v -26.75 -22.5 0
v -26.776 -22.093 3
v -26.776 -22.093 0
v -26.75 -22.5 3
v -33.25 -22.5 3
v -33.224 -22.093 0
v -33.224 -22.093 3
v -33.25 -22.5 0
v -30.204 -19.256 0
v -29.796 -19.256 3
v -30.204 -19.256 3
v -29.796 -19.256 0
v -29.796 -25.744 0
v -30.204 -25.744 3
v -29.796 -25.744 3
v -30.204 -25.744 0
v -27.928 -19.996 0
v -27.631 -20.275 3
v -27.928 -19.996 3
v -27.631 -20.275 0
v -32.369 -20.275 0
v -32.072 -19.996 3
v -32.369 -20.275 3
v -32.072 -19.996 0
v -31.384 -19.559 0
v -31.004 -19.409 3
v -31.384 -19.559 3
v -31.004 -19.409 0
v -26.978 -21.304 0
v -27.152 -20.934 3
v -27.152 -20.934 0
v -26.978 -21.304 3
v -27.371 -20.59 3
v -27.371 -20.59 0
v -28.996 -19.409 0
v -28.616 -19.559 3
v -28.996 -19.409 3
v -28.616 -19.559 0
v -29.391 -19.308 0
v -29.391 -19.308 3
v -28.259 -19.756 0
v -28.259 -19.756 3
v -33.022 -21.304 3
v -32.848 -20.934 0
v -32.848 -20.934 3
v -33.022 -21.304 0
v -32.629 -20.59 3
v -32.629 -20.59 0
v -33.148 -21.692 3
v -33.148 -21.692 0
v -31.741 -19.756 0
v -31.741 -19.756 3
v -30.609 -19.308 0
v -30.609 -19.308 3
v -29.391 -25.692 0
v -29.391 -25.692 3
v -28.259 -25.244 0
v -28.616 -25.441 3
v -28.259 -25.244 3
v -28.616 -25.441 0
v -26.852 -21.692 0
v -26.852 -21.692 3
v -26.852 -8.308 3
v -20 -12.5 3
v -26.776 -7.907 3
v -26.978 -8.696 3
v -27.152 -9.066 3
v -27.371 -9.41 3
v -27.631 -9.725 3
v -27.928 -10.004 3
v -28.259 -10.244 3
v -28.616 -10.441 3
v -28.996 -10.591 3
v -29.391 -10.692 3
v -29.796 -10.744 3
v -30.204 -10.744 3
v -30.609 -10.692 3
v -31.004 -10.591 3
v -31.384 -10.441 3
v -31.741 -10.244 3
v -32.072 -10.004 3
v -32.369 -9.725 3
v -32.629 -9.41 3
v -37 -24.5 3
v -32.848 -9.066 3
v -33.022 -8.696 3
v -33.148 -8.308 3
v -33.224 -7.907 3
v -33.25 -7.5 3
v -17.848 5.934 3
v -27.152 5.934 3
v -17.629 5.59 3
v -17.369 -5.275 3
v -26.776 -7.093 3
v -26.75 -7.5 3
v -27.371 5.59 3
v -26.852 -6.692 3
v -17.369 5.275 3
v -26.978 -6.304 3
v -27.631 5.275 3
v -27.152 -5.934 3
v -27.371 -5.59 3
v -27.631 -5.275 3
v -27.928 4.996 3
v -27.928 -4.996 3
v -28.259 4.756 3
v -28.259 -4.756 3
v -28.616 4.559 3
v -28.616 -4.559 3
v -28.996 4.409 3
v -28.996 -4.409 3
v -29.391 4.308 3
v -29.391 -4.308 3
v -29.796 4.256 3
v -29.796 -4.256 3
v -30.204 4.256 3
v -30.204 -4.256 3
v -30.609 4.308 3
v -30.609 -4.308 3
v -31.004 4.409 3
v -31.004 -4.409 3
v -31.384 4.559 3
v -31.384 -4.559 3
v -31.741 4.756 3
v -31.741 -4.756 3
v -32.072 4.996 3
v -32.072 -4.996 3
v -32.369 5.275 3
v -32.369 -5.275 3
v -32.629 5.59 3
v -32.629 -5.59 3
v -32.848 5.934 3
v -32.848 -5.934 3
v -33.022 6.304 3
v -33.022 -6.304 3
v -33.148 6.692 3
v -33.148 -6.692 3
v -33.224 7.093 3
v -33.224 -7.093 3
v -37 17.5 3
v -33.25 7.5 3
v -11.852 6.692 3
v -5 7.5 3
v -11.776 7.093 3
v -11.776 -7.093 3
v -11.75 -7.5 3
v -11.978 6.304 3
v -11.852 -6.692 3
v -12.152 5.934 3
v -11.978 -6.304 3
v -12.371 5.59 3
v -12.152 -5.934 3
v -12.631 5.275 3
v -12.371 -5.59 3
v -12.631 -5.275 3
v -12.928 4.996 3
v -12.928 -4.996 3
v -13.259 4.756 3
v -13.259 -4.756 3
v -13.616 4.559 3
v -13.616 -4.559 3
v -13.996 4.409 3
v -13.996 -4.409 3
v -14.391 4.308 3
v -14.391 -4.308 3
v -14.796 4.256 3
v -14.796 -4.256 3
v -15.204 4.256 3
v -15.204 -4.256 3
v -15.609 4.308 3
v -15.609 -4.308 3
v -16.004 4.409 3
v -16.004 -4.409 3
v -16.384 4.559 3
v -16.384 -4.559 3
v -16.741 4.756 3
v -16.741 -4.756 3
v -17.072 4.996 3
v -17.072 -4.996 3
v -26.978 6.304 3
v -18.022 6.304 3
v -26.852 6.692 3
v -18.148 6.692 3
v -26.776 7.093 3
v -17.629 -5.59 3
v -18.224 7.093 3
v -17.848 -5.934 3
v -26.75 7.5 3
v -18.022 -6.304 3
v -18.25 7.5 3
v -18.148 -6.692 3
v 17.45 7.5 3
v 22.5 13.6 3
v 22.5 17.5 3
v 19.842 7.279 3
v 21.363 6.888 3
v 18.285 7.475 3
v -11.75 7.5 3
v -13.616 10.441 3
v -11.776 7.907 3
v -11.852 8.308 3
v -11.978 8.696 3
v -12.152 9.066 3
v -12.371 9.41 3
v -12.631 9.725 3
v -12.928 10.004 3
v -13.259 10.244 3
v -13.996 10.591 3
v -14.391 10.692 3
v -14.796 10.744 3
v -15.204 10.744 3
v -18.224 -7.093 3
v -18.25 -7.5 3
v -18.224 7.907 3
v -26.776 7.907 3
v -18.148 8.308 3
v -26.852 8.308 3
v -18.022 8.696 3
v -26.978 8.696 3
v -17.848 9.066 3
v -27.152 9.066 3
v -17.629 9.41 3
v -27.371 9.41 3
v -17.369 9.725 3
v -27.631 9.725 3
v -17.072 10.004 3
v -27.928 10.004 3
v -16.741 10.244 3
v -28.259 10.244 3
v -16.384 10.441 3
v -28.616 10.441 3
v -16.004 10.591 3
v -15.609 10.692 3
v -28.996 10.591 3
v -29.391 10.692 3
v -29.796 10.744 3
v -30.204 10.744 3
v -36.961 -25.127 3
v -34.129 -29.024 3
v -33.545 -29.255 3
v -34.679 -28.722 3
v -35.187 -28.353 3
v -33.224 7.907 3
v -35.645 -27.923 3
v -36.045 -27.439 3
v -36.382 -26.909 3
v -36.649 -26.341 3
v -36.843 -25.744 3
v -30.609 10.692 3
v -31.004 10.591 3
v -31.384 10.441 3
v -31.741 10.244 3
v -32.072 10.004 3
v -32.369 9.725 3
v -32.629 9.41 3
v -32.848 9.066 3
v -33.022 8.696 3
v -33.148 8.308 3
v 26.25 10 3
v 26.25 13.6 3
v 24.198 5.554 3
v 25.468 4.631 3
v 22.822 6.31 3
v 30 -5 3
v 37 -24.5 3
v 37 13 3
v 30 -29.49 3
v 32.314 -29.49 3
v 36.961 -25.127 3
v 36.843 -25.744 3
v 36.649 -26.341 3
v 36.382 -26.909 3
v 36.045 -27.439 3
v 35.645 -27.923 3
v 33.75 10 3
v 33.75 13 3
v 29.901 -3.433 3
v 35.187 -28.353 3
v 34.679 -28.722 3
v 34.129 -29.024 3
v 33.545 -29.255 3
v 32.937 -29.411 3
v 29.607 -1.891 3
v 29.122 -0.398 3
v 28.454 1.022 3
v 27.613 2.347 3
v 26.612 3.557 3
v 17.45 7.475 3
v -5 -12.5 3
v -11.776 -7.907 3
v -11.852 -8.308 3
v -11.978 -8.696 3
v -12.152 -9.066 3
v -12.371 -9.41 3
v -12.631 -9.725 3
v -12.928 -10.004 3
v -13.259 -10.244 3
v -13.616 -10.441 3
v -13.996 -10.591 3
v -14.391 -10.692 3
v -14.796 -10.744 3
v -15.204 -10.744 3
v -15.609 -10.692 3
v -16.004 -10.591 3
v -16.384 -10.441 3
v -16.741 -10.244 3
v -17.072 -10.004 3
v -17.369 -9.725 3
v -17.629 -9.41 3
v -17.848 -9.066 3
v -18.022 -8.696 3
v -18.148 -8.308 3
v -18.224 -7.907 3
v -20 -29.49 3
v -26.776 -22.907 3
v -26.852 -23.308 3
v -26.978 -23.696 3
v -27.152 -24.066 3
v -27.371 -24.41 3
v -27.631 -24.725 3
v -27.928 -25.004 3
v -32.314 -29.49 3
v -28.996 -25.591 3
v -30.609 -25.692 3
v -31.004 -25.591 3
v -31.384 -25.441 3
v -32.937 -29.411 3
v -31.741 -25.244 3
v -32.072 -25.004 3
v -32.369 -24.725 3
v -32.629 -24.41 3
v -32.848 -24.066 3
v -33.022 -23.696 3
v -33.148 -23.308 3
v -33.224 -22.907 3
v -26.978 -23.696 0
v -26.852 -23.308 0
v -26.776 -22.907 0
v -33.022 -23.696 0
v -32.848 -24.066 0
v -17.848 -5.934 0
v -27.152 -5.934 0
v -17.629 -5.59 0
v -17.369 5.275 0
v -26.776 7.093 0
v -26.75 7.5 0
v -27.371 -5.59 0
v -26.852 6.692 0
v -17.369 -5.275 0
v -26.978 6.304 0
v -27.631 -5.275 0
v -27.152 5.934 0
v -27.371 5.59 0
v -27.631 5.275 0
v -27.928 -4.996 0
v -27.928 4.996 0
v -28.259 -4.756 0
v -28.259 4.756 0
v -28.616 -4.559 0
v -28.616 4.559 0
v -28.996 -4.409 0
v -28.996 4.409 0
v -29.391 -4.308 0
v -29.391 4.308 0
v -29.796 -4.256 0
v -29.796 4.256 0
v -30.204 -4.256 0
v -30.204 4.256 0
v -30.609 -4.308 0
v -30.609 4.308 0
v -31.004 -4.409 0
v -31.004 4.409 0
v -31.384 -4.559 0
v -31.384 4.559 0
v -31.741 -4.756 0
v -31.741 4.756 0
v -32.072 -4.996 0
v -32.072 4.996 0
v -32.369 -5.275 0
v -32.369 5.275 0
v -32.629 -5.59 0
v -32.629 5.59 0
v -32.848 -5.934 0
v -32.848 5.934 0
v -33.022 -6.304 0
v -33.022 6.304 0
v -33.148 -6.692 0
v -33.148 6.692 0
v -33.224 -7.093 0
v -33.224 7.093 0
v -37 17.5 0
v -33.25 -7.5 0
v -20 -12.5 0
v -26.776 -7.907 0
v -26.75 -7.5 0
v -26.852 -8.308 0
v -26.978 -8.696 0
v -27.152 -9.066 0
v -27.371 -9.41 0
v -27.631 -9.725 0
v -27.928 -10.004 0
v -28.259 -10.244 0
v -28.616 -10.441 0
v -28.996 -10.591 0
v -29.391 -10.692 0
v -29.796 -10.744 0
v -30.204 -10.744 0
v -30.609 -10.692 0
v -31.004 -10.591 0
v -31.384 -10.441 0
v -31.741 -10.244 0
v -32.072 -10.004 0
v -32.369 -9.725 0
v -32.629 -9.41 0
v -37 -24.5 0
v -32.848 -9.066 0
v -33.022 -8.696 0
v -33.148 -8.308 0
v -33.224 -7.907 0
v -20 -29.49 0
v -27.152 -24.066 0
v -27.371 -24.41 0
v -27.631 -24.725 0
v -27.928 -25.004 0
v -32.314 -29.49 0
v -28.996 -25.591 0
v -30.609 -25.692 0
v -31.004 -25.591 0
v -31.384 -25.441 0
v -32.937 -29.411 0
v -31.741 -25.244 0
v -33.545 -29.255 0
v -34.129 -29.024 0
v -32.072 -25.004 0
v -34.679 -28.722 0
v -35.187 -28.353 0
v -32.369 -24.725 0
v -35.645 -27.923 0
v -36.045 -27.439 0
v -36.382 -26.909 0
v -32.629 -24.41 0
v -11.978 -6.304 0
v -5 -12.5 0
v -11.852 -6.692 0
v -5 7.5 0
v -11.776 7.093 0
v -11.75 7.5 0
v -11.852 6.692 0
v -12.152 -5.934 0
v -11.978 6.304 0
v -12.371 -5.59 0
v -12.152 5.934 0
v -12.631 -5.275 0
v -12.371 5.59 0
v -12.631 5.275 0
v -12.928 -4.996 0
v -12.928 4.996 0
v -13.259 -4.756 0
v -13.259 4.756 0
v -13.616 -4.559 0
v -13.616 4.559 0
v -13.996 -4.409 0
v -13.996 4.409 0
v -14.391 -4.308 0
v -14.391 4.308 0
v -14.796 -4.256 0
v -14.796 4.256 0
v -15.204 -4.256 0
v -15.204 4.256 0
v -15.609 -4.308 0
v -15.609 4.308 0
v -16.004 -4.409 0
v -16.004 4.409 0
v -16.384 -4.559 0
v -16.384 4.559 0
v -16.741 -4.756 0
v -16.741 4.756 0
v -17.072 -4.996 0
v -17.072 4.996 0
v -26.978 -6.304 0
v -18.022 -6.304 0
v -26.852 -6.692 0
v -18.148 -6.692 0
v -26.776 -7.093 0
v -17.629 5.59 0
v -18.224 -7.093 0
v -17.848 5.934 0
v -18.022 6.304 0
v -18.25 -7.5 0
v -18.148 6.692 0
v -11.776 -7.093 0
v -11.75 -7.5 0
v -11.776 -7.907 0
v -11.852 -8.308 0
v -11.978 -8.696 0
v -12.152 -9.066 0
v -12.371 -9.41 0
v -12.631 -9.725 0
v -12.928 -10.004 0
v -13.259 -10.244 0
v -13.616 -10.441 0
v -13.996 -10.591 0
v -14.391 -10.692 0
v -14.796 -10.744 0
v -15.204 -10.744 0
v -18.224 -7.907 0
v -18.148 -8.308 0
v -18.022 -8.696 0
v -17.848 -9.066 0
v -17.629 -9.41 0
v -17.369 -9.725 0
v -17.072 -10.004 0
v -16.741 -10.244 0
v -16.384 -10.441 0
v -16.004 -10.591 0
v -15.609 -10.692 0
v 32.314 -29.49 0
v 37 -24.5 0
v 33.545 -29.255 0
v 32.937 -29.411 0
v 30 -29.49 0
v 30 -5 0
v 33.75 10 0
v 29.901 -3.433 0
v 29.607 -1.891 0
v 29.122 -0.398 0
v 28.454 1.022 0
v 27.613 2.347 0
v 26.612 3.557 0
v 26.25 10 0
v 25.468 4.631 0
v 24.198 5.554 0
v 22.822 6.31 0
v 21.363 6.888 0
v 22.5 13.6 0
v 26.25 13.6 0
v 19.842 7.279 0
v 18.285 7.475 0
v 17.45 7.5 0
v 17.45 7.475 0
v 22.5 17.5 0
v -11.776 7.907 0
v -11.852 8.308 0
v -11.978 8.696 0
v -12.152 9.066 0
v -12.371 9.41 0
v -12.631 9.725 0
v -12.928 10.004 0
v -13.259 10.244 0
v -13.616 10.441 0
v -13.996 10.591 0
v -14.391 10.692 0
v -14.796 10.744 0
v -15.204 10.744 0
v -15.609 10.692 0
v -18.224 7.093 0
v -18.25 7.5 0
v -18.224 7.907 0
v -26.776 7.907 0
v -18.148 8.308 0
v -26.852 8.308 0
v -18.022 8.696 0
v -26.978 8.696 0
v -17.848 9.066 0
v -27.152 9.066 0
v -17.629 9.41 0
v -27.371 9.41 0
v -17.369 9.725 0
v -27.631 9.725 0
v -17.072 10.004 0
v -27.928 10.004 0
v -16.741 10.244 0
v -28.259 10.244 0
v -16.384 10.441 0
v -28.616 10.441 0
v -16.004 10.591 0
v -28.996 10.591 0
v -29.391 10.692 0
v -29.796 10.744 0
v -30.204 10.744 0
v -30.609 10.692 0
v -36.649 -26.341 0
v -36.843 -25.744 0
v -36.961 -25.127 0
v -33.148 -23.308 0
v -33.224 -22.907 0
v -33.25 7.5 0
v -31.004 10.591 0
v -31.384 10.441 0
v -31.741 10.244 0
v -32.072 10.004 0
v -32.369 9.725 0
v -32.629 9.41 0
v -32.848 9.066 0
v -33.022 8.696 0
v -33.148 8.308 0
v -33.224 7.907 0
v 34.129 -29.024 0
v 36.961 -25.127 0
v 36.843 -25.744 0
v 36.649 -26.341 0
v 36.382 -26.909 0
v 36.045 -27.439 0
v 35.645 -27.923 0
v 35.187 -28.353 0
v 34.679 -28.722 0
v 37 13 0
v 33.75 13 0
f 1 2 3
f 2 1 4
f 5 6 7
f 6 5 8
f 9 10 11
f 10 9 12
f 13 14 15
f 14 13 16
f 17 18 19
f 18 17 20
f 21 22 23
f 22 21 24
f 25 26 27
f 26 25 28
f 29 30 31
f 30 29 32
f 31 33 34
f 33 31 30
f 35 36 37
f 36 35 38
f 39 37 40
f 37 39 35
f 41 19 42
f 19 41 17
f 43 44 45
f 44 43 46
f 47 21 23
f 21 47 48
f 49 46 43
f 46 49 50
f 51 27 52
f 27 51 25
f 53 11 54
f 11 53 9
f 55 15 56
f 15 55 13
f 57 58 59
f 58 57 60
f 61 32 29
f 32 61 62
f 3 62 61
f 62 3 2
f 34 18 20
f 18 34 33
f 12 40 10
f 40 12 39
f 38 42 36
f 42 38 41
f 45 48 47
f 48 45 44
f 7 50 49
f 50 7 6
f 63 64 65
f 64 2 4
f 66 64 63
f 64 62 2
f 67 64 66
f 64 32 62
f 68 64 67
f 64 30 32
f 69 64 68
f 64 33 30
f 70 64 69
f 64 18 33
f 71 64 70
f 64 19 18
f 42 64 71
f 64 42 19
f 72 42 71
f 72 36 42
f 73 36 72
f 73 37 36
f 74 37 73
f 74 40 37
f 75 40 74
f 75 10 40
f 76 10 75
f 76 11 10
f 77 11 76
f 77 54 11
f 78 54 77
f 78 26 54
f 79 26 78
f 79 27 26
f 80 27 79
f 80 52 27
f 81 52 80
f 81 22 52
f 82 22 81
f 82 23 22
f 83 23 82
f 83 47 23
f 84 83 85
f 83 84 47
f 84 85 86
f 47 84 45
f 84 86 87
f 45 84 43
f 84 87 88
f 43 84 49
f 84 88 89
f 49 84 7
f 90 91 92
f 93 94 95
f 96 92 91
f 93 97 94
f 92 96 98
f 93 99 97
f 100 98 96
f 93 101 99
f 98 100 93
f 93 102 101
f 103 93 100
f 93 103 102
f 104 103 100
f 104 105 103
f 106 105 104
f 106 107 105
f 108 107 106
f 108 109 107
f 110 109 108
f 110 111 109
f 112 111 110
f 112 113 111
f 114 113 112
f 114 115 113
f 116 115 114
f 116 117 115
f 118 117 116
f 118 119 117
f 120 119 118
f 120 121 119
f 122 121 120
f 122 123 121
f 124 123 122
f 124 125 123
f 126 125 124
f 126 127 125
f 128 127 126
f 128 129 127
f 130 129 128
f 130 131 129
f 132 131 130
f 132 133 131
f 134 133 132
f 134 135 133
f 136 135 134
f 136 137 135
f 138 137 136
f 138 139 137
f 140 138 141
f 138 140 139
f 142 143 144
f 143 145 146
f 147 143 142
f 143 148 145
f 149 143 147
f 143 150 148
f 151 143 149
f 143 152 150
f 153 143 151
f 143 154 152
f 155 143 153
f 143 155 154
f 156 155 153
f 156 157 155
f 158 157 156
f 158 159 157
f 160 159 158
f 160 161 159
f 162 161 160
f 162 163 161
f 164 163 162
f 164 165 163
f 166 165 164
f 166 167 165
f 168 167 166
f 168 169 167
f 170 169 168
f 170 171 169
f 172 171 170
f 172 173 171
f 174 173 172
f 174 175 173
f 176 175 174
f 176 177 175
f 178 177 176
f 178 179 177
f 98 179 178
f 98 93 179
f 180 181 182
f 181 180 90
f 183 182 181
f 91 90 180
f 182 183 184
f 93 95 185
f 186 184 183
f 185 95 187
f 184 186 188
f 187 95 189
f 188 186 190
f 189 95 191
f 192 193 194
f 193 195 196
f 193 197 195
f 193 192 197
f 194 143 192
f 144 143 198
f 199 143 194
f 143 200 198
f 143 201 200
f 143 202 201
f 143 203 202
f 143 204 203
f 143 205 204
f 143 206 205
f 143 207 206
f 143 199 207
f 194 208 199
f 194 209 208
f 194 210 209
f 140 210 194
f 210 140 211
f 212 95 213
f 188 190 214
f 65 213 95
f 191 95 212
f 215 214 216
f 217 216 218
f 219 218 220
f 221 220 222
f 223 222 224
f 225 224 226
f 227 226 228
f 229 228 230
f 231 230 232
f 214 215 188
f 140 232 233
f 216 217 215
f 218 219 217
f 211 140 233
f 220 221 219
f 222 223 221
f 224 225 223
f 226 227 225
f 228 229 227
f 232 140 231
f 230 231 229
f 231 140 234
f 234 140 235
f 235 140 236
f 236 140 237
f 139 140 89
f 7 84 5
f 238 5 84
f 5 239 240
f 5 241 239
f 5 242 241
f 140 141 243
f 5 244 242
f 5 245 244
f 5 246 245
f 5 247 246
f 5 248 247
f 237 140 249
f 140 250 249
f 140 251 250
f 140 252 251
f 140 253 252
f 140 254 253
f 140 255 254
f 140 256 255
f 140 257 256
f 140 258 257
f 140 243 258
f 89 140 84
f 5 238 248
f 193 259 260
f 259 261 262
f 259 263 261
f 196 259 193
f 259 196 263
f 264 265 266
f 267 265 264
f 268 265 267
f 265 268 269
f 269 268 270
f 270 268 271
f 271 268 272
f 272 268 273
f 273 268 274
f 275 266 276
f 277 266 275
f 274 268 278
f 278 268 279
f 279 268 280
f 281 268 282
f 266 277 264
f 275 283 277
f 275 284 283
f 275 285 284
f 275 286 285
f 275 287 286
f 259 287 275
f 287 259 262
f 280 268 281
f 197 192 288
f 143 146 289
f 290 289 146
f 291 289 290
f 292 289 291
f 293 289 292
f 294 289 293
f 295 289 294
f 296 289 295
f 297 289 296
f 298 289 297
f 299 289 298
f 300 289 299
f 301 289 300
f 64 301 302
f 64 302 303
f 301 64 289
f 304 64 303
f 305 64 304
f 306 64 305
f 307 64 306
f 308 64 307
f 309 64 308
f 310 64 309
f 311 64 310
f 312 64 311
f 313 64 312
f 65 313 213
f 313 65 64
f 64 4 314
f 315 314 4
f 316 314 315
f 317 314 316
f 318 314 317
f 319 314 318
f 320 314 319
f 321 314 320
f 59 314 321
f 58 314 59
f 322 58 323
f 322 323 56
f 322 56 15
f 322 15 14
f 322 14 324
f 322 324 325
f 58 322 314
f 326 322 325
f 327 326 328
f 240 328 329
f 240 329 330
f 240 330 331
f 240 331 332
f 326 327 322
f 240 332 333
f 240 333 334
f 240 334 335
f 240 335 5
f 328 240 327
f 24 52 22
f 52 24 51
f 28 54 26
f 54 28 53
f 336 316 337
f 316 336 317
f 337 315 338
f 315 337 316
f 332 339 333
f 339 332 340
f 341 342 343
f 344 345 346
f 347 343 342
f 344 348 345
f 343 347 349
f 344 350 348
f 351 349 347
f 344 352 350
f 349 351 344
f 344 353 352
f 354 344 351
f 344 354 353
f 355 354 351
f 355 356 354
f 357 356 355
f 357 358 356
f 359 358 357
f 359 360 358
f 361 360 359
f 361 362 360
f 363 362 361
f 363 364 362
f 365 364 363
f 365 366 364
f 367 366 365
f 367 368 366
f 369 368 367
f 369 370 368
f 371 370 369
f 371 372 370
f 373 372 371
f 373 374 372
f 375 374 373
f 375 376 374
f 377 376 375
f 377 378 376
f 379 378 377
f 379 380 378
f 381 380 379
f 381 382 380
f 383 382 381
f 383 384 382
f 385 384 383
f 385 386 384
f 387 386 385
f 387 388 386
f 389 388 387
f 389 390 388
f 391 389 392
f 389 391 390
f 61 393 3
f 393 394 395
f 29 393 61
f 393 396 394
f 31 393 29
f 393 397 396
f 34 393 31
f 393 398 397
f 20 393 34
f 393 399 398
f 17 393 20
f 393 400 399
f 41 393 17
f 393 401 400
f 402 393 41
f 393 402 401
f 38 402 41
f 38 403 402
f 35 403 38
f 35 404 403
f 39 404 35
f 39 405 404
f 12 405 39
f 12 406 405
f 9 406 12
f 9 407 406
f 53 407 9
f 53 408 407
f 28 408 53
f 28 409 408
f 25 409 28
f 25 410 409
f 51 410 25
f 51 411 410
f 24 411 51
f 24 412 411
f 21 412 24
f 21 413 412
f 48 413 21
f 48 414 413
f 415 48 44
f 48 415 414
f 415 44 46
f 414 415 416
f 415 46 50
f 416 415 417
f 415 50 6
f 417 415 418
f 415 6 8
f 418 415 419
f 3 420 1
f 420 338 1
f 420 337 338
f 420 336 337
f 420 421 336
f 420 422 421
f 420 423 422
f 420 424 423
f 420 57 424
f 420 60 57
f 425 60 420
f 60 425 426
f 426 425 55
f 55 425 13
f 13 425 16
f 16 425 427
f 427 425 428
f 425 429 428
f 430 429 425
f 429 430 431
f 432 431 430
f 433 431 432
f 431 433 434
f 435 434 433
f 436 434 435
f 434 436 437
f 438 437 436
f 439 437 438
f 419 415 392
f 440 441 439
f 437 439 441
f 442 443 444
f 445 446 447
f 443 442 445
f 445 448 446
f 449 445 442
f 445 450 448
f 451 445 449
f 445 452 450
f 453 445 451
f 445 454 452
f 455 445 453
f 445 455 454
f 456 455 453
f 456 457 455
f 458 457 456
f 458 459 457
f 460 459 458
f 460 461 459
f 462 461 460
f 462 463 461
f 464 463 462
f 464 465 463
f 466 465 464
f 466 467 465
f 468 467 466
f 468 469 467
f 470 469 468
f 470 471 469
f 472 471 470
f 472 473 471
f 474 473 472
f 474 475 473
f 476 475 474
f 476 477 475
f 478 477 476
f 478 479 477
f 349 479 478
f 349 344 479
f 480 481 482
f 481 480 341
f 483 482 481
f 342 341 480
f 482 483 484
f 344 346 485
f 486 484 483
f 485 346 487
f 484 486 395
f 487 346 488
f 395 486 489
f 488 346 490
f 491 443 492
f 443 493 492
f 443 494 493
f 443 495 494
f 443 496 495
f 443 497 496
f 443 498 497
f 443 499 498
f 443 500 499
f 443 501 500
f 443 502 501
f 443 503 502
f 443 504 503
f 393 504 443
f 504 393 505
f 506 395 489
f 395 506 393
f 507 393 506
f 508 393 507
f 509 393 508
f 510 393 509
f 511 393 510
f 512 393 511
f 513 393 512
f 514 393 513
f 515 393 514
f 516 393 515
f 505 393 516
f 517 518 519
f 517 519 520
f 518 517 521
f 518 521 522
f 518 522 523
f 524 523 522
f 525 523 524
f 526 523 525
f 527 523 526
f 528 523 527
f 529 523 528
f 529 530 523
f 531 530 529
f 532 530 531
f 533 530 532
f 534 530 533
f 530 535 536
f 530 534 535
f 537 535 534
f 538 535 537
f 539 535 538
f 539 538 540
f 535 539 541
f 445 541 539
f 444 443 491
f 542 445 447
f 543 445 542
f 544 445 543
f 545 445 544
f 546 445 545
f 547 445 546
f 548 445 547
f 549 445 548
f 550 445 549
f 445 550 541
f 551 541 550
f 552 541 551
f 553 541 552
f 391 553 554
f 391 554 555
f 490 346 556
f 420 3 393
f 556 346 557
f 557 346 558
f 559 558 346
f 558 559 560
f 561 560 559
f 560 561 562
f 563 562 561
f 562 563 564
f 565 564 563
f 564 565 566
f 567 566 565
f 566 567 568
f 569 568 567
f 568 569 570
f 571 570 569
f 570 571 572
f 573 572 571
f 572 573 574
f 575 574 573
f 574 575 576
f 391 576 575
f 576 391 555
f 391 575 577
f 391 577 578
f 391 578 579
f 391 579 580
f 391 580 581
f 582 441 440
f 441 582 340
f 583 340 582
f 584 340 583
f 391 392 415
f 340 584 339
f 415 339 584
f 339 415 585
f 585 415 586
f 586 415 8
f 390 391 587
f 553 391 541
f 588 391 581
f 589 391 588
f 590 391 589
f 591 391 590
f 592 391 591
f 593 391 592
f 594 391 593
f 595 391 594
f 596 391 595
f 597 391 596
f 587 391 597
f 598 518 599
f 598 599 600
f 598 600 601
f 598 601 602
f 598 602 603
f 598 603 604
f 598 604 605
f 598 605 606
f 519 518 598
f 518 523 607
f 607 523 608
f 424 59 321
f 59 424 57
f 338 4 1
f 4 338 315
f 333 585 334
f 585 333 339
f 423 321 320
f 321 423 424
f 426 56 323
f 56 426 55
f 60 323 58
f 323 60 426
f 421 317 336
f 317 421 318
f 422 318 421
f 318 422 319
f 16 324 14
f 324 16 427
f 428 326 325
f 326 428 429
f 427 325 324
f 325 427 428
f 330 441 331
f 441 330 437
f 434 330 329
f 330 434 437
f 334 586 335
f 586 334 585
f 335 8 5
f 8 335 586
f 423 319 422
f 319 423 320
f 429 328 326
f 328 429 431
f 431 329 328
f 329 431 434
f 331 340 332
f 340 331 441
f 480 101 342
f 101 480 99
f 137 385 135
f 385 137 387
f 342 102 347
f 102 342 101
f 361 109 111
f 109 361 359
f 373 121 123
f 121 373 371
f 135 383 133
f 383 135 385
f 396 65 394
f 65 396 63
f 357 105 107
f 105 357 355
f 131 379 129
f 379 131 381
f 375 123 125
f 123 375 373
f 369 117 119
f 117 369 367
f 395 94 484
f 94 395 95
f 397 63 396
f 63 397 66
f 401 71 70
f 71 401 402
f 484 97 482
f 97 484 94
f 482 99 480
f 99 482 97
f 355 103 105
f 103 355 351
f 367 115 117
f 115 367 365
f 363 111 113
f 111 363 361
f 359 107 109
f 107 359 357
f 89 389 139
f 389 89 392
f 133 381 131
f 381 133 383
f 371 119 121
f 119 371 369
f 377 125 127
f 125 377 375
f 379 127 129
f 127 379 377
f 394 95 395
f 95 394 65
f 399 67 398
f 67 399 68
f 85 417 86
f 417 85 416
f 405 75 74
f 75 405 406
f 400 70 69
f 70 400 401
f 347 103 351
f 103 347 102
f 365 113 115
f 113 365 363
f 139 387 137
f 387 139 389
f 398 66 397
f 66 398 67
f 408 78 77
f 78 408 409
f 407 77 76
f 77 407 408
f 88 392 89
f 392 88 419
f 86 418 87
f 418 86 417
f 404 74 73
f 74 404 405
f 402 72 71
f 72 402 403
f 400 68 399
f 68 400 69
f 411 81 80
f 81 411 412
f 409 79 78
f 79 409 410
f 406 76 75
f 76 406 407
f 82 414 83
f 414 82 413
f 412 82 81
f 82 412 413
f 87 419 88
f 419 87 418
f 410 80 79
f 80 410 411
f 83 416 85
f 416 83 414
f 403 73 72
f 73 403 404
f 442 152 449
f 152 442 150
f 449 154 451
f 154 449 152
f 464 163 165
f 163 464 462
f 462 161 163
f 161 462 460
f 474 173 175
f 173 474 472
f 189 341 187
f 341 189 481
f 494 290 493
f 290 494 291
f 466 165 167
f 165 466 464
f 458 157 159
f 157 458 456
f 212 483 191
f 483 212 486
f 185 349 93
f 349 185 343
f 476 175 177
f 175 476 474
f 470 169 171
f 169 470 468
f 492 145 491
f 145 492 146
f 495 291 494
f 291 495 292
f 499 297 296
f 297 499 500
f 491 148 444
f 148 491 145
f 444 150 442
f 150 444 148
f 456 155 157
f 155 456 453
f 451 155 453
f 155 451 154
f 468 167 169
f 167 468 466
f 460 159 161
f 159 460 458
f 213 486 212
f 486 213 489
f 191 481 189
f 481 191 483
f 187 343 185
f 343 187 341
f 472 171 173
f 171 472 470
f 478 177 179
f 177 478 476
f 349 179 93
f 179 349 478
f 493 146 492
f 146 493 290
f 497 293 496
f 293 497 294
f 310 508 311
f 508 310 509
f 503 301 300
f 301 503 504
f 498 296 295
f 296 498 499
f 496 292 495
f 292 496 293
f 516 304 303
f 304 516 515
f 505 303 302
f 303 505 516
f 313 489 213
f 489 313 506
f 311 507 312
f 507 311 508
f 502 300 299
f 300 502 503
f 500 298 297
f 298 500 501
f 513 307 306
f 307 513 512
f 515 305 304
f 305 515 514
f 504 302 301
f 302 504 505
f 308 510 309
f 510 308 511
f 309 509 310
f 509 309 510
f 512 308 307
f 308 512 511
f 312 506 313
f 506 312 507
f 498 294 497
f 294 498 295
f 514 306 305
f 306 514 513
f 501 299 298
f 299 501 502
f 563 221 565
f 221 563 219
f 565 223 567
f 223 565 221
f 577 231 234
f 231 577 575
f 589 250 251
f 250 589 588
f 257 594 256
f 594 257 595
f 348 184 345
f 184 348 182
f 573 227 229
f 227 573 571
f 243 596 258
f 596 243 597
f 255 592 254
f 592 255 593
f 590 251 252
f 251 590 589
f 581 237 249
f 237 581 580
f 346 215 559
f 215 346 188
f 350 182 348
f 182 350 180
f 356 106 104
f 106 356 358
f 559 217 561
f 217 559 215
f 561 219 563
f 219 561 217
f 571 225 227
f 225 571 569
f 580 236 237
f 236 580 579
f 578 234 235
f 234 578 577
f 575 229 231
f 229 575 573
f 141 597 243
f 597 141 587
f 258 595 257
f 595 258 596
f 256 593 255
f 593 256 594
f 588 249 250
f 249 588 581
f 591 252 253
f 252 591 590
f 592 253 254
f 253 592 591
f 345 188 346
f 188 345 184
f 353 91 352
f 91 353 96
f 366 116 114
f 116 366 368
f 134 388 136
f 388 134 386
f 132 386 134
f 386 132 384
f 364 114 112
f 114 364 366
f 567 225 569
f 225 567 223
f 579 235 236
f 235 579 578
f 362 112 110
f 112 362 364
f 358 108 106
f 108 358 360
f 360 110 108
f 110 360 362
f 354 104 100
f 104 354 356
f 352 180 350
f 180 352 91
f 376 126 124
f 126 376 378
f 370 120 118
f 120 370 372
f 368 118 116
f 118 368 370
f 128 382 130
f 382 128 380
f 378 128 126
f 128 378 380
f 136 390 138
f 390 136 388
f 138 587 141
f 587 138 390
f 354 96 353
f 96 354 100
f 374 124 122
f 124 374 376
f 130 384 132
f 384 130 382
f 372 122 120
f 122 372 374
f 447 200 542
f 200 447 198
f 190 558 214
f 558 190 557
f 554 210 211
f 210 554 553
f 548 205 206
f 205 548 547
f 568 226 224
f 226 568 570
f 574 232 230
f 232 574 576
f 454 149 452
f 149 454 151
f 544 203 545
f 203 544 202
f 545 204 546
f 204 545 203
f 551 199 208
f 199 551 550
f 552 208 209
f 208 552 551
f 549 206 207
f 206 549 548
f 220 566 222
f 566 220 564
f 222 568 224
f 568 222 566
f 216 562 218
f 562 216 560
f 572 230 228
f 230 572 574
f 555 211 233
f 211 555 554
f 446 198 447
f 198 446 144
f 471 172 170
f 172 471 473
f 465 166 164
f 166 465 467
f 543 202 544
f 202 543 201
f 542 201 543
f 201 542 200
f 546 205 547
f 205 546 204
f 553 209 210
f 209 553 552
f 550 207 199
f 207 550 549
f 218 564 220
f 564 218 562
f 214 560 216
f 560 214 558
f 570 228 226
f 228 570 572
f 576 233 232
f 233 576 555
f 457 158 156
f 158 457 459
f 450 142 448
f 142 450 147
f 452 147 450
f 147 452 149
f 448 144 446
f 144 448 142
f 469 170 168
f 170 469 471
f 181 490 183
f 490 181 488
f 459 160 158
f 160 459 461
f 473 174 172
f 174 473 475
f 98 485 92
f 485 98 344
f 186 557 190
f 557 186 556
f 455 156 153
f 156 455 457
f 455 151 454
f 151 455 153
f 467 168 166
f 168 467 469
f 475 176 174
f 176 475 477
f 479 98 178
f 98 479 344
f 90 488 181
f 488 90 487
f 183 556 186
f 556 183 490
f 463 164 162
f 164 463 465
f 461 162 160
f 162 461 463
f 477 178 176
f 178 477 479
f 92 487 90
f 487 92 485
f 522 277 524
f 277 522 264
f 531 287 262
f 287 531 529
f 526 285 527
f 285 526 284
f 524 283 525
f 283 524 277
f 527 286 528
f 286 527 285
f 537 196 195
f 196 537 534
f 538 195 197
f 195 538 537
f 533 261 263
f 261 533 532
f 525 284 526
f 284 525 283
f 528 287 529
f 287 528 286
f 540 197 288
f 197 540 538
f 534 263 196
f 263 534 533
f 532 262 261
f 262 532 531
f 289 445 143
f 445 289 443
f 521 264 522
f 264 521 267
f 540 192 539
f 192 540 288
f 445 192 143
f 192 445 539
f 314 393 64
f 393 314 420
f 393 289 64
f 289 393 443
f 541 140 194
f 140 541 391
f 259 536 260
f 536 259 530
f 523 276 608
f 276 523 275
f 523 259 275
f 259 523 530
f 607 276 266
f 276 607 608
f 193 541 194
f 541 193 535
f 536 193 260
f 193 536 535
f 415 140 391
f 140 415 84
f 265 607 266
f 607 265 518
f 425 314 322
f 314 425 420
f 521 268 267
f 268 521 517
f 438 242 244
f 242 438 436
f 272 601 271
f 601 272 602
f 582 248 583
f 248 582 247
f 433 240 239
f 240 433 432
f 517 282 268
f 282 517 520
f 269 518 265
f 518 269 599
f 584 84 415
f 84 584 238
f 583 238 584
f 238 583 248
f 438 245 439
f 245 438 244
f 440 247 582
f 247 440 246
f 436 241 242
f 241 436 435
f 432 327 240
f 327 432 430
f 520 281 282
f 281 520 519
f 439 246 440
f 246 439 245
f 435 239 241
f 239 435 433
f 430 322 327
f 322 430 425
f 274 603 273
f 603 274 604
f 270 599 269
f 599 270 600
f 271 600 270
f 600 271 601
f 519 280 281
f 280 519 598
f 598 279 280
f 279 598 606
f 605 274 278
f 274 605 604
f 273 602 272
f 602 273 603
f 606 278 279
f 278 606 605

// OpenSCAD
$fn = 50;


difference() {
	union() {
		hull() {
			translate(v = [-32.0000000000, 24.5000000000, 0]) {
				cylinder(h = 3, r = 5);
			}
			translate(v = [32.0000000000, 24.5000000000, 0]) {
				cylinder(h = 3, r = 5);
			}
			translate(v = [-32.0000000000, -24.5000000000, 0]) {
				cylinder(h = 3, r = 5);
			}
			translate(v = [32.0000000000, -24.5000000000, 0]) {
				cylinder(h = 3, r = 5);
			}
		}
	}
	union() {
		translate(v = [-30.0000000000, -22.5000000000, 0]) {
			cylinder(h = 3, r = 3.2500000000);
		}
		translate(v = [-30.0000000000, -7.5000000000, 0]) {
			cylinder(h = 3, r = 3.2500000000);
		}
		translate(v = [-15.0000000000, -7.5000000000, 0]) {
			cylinder(h = 3, r = 3.2500000000);
		}
		translate(v = [-30.0000000000, 7.5000000000, 0]) {
			cylinder(h = 3, r = 3.2500000000);
		}
		translate(v = [-15.0000000000, 7.5000000000, 0]) {
			cylinder(h = 3, r = 3.2500000000);
		}
		#translate(v = [17.5000000000, -5, 0.0000000000]) {
			cylinder(h = 3, r = 12.5000000000);
		}
		#translate(v = [-5.0000000000, -95.0000000000, 0]) {
			cube(size = [35, 90, 3]);
		}
		#translate(v = [-5.0000000000, -95.0000000000, 0]) {
			cube(size = [22.4500000000, 102.5000000000, 3]);
		}
		#translate(v = [-20.0000000000, -72.5000000000, 0]) {
			cube(size = [50, 60, 3]);
		}
		#translate(v = [-58.5000000000, 17.5000000000, 0]) {
			cube(size = [100, 85, 3]);
		}
		#translate(v = [26.2500000000, 10.0000000000, 0]) {
			cube(size = [7.5000000000, 100, 3]);
		}
		#translate(v = [33.5000000000, 13.0000000000, 0]) {
			cube(size = [7, 94, 3]);
		}
		#translate(v = [22.5000000000, 13.6000000000, 0]) {
			cube(size = [4, 4, 3]);
		}
	}
}
